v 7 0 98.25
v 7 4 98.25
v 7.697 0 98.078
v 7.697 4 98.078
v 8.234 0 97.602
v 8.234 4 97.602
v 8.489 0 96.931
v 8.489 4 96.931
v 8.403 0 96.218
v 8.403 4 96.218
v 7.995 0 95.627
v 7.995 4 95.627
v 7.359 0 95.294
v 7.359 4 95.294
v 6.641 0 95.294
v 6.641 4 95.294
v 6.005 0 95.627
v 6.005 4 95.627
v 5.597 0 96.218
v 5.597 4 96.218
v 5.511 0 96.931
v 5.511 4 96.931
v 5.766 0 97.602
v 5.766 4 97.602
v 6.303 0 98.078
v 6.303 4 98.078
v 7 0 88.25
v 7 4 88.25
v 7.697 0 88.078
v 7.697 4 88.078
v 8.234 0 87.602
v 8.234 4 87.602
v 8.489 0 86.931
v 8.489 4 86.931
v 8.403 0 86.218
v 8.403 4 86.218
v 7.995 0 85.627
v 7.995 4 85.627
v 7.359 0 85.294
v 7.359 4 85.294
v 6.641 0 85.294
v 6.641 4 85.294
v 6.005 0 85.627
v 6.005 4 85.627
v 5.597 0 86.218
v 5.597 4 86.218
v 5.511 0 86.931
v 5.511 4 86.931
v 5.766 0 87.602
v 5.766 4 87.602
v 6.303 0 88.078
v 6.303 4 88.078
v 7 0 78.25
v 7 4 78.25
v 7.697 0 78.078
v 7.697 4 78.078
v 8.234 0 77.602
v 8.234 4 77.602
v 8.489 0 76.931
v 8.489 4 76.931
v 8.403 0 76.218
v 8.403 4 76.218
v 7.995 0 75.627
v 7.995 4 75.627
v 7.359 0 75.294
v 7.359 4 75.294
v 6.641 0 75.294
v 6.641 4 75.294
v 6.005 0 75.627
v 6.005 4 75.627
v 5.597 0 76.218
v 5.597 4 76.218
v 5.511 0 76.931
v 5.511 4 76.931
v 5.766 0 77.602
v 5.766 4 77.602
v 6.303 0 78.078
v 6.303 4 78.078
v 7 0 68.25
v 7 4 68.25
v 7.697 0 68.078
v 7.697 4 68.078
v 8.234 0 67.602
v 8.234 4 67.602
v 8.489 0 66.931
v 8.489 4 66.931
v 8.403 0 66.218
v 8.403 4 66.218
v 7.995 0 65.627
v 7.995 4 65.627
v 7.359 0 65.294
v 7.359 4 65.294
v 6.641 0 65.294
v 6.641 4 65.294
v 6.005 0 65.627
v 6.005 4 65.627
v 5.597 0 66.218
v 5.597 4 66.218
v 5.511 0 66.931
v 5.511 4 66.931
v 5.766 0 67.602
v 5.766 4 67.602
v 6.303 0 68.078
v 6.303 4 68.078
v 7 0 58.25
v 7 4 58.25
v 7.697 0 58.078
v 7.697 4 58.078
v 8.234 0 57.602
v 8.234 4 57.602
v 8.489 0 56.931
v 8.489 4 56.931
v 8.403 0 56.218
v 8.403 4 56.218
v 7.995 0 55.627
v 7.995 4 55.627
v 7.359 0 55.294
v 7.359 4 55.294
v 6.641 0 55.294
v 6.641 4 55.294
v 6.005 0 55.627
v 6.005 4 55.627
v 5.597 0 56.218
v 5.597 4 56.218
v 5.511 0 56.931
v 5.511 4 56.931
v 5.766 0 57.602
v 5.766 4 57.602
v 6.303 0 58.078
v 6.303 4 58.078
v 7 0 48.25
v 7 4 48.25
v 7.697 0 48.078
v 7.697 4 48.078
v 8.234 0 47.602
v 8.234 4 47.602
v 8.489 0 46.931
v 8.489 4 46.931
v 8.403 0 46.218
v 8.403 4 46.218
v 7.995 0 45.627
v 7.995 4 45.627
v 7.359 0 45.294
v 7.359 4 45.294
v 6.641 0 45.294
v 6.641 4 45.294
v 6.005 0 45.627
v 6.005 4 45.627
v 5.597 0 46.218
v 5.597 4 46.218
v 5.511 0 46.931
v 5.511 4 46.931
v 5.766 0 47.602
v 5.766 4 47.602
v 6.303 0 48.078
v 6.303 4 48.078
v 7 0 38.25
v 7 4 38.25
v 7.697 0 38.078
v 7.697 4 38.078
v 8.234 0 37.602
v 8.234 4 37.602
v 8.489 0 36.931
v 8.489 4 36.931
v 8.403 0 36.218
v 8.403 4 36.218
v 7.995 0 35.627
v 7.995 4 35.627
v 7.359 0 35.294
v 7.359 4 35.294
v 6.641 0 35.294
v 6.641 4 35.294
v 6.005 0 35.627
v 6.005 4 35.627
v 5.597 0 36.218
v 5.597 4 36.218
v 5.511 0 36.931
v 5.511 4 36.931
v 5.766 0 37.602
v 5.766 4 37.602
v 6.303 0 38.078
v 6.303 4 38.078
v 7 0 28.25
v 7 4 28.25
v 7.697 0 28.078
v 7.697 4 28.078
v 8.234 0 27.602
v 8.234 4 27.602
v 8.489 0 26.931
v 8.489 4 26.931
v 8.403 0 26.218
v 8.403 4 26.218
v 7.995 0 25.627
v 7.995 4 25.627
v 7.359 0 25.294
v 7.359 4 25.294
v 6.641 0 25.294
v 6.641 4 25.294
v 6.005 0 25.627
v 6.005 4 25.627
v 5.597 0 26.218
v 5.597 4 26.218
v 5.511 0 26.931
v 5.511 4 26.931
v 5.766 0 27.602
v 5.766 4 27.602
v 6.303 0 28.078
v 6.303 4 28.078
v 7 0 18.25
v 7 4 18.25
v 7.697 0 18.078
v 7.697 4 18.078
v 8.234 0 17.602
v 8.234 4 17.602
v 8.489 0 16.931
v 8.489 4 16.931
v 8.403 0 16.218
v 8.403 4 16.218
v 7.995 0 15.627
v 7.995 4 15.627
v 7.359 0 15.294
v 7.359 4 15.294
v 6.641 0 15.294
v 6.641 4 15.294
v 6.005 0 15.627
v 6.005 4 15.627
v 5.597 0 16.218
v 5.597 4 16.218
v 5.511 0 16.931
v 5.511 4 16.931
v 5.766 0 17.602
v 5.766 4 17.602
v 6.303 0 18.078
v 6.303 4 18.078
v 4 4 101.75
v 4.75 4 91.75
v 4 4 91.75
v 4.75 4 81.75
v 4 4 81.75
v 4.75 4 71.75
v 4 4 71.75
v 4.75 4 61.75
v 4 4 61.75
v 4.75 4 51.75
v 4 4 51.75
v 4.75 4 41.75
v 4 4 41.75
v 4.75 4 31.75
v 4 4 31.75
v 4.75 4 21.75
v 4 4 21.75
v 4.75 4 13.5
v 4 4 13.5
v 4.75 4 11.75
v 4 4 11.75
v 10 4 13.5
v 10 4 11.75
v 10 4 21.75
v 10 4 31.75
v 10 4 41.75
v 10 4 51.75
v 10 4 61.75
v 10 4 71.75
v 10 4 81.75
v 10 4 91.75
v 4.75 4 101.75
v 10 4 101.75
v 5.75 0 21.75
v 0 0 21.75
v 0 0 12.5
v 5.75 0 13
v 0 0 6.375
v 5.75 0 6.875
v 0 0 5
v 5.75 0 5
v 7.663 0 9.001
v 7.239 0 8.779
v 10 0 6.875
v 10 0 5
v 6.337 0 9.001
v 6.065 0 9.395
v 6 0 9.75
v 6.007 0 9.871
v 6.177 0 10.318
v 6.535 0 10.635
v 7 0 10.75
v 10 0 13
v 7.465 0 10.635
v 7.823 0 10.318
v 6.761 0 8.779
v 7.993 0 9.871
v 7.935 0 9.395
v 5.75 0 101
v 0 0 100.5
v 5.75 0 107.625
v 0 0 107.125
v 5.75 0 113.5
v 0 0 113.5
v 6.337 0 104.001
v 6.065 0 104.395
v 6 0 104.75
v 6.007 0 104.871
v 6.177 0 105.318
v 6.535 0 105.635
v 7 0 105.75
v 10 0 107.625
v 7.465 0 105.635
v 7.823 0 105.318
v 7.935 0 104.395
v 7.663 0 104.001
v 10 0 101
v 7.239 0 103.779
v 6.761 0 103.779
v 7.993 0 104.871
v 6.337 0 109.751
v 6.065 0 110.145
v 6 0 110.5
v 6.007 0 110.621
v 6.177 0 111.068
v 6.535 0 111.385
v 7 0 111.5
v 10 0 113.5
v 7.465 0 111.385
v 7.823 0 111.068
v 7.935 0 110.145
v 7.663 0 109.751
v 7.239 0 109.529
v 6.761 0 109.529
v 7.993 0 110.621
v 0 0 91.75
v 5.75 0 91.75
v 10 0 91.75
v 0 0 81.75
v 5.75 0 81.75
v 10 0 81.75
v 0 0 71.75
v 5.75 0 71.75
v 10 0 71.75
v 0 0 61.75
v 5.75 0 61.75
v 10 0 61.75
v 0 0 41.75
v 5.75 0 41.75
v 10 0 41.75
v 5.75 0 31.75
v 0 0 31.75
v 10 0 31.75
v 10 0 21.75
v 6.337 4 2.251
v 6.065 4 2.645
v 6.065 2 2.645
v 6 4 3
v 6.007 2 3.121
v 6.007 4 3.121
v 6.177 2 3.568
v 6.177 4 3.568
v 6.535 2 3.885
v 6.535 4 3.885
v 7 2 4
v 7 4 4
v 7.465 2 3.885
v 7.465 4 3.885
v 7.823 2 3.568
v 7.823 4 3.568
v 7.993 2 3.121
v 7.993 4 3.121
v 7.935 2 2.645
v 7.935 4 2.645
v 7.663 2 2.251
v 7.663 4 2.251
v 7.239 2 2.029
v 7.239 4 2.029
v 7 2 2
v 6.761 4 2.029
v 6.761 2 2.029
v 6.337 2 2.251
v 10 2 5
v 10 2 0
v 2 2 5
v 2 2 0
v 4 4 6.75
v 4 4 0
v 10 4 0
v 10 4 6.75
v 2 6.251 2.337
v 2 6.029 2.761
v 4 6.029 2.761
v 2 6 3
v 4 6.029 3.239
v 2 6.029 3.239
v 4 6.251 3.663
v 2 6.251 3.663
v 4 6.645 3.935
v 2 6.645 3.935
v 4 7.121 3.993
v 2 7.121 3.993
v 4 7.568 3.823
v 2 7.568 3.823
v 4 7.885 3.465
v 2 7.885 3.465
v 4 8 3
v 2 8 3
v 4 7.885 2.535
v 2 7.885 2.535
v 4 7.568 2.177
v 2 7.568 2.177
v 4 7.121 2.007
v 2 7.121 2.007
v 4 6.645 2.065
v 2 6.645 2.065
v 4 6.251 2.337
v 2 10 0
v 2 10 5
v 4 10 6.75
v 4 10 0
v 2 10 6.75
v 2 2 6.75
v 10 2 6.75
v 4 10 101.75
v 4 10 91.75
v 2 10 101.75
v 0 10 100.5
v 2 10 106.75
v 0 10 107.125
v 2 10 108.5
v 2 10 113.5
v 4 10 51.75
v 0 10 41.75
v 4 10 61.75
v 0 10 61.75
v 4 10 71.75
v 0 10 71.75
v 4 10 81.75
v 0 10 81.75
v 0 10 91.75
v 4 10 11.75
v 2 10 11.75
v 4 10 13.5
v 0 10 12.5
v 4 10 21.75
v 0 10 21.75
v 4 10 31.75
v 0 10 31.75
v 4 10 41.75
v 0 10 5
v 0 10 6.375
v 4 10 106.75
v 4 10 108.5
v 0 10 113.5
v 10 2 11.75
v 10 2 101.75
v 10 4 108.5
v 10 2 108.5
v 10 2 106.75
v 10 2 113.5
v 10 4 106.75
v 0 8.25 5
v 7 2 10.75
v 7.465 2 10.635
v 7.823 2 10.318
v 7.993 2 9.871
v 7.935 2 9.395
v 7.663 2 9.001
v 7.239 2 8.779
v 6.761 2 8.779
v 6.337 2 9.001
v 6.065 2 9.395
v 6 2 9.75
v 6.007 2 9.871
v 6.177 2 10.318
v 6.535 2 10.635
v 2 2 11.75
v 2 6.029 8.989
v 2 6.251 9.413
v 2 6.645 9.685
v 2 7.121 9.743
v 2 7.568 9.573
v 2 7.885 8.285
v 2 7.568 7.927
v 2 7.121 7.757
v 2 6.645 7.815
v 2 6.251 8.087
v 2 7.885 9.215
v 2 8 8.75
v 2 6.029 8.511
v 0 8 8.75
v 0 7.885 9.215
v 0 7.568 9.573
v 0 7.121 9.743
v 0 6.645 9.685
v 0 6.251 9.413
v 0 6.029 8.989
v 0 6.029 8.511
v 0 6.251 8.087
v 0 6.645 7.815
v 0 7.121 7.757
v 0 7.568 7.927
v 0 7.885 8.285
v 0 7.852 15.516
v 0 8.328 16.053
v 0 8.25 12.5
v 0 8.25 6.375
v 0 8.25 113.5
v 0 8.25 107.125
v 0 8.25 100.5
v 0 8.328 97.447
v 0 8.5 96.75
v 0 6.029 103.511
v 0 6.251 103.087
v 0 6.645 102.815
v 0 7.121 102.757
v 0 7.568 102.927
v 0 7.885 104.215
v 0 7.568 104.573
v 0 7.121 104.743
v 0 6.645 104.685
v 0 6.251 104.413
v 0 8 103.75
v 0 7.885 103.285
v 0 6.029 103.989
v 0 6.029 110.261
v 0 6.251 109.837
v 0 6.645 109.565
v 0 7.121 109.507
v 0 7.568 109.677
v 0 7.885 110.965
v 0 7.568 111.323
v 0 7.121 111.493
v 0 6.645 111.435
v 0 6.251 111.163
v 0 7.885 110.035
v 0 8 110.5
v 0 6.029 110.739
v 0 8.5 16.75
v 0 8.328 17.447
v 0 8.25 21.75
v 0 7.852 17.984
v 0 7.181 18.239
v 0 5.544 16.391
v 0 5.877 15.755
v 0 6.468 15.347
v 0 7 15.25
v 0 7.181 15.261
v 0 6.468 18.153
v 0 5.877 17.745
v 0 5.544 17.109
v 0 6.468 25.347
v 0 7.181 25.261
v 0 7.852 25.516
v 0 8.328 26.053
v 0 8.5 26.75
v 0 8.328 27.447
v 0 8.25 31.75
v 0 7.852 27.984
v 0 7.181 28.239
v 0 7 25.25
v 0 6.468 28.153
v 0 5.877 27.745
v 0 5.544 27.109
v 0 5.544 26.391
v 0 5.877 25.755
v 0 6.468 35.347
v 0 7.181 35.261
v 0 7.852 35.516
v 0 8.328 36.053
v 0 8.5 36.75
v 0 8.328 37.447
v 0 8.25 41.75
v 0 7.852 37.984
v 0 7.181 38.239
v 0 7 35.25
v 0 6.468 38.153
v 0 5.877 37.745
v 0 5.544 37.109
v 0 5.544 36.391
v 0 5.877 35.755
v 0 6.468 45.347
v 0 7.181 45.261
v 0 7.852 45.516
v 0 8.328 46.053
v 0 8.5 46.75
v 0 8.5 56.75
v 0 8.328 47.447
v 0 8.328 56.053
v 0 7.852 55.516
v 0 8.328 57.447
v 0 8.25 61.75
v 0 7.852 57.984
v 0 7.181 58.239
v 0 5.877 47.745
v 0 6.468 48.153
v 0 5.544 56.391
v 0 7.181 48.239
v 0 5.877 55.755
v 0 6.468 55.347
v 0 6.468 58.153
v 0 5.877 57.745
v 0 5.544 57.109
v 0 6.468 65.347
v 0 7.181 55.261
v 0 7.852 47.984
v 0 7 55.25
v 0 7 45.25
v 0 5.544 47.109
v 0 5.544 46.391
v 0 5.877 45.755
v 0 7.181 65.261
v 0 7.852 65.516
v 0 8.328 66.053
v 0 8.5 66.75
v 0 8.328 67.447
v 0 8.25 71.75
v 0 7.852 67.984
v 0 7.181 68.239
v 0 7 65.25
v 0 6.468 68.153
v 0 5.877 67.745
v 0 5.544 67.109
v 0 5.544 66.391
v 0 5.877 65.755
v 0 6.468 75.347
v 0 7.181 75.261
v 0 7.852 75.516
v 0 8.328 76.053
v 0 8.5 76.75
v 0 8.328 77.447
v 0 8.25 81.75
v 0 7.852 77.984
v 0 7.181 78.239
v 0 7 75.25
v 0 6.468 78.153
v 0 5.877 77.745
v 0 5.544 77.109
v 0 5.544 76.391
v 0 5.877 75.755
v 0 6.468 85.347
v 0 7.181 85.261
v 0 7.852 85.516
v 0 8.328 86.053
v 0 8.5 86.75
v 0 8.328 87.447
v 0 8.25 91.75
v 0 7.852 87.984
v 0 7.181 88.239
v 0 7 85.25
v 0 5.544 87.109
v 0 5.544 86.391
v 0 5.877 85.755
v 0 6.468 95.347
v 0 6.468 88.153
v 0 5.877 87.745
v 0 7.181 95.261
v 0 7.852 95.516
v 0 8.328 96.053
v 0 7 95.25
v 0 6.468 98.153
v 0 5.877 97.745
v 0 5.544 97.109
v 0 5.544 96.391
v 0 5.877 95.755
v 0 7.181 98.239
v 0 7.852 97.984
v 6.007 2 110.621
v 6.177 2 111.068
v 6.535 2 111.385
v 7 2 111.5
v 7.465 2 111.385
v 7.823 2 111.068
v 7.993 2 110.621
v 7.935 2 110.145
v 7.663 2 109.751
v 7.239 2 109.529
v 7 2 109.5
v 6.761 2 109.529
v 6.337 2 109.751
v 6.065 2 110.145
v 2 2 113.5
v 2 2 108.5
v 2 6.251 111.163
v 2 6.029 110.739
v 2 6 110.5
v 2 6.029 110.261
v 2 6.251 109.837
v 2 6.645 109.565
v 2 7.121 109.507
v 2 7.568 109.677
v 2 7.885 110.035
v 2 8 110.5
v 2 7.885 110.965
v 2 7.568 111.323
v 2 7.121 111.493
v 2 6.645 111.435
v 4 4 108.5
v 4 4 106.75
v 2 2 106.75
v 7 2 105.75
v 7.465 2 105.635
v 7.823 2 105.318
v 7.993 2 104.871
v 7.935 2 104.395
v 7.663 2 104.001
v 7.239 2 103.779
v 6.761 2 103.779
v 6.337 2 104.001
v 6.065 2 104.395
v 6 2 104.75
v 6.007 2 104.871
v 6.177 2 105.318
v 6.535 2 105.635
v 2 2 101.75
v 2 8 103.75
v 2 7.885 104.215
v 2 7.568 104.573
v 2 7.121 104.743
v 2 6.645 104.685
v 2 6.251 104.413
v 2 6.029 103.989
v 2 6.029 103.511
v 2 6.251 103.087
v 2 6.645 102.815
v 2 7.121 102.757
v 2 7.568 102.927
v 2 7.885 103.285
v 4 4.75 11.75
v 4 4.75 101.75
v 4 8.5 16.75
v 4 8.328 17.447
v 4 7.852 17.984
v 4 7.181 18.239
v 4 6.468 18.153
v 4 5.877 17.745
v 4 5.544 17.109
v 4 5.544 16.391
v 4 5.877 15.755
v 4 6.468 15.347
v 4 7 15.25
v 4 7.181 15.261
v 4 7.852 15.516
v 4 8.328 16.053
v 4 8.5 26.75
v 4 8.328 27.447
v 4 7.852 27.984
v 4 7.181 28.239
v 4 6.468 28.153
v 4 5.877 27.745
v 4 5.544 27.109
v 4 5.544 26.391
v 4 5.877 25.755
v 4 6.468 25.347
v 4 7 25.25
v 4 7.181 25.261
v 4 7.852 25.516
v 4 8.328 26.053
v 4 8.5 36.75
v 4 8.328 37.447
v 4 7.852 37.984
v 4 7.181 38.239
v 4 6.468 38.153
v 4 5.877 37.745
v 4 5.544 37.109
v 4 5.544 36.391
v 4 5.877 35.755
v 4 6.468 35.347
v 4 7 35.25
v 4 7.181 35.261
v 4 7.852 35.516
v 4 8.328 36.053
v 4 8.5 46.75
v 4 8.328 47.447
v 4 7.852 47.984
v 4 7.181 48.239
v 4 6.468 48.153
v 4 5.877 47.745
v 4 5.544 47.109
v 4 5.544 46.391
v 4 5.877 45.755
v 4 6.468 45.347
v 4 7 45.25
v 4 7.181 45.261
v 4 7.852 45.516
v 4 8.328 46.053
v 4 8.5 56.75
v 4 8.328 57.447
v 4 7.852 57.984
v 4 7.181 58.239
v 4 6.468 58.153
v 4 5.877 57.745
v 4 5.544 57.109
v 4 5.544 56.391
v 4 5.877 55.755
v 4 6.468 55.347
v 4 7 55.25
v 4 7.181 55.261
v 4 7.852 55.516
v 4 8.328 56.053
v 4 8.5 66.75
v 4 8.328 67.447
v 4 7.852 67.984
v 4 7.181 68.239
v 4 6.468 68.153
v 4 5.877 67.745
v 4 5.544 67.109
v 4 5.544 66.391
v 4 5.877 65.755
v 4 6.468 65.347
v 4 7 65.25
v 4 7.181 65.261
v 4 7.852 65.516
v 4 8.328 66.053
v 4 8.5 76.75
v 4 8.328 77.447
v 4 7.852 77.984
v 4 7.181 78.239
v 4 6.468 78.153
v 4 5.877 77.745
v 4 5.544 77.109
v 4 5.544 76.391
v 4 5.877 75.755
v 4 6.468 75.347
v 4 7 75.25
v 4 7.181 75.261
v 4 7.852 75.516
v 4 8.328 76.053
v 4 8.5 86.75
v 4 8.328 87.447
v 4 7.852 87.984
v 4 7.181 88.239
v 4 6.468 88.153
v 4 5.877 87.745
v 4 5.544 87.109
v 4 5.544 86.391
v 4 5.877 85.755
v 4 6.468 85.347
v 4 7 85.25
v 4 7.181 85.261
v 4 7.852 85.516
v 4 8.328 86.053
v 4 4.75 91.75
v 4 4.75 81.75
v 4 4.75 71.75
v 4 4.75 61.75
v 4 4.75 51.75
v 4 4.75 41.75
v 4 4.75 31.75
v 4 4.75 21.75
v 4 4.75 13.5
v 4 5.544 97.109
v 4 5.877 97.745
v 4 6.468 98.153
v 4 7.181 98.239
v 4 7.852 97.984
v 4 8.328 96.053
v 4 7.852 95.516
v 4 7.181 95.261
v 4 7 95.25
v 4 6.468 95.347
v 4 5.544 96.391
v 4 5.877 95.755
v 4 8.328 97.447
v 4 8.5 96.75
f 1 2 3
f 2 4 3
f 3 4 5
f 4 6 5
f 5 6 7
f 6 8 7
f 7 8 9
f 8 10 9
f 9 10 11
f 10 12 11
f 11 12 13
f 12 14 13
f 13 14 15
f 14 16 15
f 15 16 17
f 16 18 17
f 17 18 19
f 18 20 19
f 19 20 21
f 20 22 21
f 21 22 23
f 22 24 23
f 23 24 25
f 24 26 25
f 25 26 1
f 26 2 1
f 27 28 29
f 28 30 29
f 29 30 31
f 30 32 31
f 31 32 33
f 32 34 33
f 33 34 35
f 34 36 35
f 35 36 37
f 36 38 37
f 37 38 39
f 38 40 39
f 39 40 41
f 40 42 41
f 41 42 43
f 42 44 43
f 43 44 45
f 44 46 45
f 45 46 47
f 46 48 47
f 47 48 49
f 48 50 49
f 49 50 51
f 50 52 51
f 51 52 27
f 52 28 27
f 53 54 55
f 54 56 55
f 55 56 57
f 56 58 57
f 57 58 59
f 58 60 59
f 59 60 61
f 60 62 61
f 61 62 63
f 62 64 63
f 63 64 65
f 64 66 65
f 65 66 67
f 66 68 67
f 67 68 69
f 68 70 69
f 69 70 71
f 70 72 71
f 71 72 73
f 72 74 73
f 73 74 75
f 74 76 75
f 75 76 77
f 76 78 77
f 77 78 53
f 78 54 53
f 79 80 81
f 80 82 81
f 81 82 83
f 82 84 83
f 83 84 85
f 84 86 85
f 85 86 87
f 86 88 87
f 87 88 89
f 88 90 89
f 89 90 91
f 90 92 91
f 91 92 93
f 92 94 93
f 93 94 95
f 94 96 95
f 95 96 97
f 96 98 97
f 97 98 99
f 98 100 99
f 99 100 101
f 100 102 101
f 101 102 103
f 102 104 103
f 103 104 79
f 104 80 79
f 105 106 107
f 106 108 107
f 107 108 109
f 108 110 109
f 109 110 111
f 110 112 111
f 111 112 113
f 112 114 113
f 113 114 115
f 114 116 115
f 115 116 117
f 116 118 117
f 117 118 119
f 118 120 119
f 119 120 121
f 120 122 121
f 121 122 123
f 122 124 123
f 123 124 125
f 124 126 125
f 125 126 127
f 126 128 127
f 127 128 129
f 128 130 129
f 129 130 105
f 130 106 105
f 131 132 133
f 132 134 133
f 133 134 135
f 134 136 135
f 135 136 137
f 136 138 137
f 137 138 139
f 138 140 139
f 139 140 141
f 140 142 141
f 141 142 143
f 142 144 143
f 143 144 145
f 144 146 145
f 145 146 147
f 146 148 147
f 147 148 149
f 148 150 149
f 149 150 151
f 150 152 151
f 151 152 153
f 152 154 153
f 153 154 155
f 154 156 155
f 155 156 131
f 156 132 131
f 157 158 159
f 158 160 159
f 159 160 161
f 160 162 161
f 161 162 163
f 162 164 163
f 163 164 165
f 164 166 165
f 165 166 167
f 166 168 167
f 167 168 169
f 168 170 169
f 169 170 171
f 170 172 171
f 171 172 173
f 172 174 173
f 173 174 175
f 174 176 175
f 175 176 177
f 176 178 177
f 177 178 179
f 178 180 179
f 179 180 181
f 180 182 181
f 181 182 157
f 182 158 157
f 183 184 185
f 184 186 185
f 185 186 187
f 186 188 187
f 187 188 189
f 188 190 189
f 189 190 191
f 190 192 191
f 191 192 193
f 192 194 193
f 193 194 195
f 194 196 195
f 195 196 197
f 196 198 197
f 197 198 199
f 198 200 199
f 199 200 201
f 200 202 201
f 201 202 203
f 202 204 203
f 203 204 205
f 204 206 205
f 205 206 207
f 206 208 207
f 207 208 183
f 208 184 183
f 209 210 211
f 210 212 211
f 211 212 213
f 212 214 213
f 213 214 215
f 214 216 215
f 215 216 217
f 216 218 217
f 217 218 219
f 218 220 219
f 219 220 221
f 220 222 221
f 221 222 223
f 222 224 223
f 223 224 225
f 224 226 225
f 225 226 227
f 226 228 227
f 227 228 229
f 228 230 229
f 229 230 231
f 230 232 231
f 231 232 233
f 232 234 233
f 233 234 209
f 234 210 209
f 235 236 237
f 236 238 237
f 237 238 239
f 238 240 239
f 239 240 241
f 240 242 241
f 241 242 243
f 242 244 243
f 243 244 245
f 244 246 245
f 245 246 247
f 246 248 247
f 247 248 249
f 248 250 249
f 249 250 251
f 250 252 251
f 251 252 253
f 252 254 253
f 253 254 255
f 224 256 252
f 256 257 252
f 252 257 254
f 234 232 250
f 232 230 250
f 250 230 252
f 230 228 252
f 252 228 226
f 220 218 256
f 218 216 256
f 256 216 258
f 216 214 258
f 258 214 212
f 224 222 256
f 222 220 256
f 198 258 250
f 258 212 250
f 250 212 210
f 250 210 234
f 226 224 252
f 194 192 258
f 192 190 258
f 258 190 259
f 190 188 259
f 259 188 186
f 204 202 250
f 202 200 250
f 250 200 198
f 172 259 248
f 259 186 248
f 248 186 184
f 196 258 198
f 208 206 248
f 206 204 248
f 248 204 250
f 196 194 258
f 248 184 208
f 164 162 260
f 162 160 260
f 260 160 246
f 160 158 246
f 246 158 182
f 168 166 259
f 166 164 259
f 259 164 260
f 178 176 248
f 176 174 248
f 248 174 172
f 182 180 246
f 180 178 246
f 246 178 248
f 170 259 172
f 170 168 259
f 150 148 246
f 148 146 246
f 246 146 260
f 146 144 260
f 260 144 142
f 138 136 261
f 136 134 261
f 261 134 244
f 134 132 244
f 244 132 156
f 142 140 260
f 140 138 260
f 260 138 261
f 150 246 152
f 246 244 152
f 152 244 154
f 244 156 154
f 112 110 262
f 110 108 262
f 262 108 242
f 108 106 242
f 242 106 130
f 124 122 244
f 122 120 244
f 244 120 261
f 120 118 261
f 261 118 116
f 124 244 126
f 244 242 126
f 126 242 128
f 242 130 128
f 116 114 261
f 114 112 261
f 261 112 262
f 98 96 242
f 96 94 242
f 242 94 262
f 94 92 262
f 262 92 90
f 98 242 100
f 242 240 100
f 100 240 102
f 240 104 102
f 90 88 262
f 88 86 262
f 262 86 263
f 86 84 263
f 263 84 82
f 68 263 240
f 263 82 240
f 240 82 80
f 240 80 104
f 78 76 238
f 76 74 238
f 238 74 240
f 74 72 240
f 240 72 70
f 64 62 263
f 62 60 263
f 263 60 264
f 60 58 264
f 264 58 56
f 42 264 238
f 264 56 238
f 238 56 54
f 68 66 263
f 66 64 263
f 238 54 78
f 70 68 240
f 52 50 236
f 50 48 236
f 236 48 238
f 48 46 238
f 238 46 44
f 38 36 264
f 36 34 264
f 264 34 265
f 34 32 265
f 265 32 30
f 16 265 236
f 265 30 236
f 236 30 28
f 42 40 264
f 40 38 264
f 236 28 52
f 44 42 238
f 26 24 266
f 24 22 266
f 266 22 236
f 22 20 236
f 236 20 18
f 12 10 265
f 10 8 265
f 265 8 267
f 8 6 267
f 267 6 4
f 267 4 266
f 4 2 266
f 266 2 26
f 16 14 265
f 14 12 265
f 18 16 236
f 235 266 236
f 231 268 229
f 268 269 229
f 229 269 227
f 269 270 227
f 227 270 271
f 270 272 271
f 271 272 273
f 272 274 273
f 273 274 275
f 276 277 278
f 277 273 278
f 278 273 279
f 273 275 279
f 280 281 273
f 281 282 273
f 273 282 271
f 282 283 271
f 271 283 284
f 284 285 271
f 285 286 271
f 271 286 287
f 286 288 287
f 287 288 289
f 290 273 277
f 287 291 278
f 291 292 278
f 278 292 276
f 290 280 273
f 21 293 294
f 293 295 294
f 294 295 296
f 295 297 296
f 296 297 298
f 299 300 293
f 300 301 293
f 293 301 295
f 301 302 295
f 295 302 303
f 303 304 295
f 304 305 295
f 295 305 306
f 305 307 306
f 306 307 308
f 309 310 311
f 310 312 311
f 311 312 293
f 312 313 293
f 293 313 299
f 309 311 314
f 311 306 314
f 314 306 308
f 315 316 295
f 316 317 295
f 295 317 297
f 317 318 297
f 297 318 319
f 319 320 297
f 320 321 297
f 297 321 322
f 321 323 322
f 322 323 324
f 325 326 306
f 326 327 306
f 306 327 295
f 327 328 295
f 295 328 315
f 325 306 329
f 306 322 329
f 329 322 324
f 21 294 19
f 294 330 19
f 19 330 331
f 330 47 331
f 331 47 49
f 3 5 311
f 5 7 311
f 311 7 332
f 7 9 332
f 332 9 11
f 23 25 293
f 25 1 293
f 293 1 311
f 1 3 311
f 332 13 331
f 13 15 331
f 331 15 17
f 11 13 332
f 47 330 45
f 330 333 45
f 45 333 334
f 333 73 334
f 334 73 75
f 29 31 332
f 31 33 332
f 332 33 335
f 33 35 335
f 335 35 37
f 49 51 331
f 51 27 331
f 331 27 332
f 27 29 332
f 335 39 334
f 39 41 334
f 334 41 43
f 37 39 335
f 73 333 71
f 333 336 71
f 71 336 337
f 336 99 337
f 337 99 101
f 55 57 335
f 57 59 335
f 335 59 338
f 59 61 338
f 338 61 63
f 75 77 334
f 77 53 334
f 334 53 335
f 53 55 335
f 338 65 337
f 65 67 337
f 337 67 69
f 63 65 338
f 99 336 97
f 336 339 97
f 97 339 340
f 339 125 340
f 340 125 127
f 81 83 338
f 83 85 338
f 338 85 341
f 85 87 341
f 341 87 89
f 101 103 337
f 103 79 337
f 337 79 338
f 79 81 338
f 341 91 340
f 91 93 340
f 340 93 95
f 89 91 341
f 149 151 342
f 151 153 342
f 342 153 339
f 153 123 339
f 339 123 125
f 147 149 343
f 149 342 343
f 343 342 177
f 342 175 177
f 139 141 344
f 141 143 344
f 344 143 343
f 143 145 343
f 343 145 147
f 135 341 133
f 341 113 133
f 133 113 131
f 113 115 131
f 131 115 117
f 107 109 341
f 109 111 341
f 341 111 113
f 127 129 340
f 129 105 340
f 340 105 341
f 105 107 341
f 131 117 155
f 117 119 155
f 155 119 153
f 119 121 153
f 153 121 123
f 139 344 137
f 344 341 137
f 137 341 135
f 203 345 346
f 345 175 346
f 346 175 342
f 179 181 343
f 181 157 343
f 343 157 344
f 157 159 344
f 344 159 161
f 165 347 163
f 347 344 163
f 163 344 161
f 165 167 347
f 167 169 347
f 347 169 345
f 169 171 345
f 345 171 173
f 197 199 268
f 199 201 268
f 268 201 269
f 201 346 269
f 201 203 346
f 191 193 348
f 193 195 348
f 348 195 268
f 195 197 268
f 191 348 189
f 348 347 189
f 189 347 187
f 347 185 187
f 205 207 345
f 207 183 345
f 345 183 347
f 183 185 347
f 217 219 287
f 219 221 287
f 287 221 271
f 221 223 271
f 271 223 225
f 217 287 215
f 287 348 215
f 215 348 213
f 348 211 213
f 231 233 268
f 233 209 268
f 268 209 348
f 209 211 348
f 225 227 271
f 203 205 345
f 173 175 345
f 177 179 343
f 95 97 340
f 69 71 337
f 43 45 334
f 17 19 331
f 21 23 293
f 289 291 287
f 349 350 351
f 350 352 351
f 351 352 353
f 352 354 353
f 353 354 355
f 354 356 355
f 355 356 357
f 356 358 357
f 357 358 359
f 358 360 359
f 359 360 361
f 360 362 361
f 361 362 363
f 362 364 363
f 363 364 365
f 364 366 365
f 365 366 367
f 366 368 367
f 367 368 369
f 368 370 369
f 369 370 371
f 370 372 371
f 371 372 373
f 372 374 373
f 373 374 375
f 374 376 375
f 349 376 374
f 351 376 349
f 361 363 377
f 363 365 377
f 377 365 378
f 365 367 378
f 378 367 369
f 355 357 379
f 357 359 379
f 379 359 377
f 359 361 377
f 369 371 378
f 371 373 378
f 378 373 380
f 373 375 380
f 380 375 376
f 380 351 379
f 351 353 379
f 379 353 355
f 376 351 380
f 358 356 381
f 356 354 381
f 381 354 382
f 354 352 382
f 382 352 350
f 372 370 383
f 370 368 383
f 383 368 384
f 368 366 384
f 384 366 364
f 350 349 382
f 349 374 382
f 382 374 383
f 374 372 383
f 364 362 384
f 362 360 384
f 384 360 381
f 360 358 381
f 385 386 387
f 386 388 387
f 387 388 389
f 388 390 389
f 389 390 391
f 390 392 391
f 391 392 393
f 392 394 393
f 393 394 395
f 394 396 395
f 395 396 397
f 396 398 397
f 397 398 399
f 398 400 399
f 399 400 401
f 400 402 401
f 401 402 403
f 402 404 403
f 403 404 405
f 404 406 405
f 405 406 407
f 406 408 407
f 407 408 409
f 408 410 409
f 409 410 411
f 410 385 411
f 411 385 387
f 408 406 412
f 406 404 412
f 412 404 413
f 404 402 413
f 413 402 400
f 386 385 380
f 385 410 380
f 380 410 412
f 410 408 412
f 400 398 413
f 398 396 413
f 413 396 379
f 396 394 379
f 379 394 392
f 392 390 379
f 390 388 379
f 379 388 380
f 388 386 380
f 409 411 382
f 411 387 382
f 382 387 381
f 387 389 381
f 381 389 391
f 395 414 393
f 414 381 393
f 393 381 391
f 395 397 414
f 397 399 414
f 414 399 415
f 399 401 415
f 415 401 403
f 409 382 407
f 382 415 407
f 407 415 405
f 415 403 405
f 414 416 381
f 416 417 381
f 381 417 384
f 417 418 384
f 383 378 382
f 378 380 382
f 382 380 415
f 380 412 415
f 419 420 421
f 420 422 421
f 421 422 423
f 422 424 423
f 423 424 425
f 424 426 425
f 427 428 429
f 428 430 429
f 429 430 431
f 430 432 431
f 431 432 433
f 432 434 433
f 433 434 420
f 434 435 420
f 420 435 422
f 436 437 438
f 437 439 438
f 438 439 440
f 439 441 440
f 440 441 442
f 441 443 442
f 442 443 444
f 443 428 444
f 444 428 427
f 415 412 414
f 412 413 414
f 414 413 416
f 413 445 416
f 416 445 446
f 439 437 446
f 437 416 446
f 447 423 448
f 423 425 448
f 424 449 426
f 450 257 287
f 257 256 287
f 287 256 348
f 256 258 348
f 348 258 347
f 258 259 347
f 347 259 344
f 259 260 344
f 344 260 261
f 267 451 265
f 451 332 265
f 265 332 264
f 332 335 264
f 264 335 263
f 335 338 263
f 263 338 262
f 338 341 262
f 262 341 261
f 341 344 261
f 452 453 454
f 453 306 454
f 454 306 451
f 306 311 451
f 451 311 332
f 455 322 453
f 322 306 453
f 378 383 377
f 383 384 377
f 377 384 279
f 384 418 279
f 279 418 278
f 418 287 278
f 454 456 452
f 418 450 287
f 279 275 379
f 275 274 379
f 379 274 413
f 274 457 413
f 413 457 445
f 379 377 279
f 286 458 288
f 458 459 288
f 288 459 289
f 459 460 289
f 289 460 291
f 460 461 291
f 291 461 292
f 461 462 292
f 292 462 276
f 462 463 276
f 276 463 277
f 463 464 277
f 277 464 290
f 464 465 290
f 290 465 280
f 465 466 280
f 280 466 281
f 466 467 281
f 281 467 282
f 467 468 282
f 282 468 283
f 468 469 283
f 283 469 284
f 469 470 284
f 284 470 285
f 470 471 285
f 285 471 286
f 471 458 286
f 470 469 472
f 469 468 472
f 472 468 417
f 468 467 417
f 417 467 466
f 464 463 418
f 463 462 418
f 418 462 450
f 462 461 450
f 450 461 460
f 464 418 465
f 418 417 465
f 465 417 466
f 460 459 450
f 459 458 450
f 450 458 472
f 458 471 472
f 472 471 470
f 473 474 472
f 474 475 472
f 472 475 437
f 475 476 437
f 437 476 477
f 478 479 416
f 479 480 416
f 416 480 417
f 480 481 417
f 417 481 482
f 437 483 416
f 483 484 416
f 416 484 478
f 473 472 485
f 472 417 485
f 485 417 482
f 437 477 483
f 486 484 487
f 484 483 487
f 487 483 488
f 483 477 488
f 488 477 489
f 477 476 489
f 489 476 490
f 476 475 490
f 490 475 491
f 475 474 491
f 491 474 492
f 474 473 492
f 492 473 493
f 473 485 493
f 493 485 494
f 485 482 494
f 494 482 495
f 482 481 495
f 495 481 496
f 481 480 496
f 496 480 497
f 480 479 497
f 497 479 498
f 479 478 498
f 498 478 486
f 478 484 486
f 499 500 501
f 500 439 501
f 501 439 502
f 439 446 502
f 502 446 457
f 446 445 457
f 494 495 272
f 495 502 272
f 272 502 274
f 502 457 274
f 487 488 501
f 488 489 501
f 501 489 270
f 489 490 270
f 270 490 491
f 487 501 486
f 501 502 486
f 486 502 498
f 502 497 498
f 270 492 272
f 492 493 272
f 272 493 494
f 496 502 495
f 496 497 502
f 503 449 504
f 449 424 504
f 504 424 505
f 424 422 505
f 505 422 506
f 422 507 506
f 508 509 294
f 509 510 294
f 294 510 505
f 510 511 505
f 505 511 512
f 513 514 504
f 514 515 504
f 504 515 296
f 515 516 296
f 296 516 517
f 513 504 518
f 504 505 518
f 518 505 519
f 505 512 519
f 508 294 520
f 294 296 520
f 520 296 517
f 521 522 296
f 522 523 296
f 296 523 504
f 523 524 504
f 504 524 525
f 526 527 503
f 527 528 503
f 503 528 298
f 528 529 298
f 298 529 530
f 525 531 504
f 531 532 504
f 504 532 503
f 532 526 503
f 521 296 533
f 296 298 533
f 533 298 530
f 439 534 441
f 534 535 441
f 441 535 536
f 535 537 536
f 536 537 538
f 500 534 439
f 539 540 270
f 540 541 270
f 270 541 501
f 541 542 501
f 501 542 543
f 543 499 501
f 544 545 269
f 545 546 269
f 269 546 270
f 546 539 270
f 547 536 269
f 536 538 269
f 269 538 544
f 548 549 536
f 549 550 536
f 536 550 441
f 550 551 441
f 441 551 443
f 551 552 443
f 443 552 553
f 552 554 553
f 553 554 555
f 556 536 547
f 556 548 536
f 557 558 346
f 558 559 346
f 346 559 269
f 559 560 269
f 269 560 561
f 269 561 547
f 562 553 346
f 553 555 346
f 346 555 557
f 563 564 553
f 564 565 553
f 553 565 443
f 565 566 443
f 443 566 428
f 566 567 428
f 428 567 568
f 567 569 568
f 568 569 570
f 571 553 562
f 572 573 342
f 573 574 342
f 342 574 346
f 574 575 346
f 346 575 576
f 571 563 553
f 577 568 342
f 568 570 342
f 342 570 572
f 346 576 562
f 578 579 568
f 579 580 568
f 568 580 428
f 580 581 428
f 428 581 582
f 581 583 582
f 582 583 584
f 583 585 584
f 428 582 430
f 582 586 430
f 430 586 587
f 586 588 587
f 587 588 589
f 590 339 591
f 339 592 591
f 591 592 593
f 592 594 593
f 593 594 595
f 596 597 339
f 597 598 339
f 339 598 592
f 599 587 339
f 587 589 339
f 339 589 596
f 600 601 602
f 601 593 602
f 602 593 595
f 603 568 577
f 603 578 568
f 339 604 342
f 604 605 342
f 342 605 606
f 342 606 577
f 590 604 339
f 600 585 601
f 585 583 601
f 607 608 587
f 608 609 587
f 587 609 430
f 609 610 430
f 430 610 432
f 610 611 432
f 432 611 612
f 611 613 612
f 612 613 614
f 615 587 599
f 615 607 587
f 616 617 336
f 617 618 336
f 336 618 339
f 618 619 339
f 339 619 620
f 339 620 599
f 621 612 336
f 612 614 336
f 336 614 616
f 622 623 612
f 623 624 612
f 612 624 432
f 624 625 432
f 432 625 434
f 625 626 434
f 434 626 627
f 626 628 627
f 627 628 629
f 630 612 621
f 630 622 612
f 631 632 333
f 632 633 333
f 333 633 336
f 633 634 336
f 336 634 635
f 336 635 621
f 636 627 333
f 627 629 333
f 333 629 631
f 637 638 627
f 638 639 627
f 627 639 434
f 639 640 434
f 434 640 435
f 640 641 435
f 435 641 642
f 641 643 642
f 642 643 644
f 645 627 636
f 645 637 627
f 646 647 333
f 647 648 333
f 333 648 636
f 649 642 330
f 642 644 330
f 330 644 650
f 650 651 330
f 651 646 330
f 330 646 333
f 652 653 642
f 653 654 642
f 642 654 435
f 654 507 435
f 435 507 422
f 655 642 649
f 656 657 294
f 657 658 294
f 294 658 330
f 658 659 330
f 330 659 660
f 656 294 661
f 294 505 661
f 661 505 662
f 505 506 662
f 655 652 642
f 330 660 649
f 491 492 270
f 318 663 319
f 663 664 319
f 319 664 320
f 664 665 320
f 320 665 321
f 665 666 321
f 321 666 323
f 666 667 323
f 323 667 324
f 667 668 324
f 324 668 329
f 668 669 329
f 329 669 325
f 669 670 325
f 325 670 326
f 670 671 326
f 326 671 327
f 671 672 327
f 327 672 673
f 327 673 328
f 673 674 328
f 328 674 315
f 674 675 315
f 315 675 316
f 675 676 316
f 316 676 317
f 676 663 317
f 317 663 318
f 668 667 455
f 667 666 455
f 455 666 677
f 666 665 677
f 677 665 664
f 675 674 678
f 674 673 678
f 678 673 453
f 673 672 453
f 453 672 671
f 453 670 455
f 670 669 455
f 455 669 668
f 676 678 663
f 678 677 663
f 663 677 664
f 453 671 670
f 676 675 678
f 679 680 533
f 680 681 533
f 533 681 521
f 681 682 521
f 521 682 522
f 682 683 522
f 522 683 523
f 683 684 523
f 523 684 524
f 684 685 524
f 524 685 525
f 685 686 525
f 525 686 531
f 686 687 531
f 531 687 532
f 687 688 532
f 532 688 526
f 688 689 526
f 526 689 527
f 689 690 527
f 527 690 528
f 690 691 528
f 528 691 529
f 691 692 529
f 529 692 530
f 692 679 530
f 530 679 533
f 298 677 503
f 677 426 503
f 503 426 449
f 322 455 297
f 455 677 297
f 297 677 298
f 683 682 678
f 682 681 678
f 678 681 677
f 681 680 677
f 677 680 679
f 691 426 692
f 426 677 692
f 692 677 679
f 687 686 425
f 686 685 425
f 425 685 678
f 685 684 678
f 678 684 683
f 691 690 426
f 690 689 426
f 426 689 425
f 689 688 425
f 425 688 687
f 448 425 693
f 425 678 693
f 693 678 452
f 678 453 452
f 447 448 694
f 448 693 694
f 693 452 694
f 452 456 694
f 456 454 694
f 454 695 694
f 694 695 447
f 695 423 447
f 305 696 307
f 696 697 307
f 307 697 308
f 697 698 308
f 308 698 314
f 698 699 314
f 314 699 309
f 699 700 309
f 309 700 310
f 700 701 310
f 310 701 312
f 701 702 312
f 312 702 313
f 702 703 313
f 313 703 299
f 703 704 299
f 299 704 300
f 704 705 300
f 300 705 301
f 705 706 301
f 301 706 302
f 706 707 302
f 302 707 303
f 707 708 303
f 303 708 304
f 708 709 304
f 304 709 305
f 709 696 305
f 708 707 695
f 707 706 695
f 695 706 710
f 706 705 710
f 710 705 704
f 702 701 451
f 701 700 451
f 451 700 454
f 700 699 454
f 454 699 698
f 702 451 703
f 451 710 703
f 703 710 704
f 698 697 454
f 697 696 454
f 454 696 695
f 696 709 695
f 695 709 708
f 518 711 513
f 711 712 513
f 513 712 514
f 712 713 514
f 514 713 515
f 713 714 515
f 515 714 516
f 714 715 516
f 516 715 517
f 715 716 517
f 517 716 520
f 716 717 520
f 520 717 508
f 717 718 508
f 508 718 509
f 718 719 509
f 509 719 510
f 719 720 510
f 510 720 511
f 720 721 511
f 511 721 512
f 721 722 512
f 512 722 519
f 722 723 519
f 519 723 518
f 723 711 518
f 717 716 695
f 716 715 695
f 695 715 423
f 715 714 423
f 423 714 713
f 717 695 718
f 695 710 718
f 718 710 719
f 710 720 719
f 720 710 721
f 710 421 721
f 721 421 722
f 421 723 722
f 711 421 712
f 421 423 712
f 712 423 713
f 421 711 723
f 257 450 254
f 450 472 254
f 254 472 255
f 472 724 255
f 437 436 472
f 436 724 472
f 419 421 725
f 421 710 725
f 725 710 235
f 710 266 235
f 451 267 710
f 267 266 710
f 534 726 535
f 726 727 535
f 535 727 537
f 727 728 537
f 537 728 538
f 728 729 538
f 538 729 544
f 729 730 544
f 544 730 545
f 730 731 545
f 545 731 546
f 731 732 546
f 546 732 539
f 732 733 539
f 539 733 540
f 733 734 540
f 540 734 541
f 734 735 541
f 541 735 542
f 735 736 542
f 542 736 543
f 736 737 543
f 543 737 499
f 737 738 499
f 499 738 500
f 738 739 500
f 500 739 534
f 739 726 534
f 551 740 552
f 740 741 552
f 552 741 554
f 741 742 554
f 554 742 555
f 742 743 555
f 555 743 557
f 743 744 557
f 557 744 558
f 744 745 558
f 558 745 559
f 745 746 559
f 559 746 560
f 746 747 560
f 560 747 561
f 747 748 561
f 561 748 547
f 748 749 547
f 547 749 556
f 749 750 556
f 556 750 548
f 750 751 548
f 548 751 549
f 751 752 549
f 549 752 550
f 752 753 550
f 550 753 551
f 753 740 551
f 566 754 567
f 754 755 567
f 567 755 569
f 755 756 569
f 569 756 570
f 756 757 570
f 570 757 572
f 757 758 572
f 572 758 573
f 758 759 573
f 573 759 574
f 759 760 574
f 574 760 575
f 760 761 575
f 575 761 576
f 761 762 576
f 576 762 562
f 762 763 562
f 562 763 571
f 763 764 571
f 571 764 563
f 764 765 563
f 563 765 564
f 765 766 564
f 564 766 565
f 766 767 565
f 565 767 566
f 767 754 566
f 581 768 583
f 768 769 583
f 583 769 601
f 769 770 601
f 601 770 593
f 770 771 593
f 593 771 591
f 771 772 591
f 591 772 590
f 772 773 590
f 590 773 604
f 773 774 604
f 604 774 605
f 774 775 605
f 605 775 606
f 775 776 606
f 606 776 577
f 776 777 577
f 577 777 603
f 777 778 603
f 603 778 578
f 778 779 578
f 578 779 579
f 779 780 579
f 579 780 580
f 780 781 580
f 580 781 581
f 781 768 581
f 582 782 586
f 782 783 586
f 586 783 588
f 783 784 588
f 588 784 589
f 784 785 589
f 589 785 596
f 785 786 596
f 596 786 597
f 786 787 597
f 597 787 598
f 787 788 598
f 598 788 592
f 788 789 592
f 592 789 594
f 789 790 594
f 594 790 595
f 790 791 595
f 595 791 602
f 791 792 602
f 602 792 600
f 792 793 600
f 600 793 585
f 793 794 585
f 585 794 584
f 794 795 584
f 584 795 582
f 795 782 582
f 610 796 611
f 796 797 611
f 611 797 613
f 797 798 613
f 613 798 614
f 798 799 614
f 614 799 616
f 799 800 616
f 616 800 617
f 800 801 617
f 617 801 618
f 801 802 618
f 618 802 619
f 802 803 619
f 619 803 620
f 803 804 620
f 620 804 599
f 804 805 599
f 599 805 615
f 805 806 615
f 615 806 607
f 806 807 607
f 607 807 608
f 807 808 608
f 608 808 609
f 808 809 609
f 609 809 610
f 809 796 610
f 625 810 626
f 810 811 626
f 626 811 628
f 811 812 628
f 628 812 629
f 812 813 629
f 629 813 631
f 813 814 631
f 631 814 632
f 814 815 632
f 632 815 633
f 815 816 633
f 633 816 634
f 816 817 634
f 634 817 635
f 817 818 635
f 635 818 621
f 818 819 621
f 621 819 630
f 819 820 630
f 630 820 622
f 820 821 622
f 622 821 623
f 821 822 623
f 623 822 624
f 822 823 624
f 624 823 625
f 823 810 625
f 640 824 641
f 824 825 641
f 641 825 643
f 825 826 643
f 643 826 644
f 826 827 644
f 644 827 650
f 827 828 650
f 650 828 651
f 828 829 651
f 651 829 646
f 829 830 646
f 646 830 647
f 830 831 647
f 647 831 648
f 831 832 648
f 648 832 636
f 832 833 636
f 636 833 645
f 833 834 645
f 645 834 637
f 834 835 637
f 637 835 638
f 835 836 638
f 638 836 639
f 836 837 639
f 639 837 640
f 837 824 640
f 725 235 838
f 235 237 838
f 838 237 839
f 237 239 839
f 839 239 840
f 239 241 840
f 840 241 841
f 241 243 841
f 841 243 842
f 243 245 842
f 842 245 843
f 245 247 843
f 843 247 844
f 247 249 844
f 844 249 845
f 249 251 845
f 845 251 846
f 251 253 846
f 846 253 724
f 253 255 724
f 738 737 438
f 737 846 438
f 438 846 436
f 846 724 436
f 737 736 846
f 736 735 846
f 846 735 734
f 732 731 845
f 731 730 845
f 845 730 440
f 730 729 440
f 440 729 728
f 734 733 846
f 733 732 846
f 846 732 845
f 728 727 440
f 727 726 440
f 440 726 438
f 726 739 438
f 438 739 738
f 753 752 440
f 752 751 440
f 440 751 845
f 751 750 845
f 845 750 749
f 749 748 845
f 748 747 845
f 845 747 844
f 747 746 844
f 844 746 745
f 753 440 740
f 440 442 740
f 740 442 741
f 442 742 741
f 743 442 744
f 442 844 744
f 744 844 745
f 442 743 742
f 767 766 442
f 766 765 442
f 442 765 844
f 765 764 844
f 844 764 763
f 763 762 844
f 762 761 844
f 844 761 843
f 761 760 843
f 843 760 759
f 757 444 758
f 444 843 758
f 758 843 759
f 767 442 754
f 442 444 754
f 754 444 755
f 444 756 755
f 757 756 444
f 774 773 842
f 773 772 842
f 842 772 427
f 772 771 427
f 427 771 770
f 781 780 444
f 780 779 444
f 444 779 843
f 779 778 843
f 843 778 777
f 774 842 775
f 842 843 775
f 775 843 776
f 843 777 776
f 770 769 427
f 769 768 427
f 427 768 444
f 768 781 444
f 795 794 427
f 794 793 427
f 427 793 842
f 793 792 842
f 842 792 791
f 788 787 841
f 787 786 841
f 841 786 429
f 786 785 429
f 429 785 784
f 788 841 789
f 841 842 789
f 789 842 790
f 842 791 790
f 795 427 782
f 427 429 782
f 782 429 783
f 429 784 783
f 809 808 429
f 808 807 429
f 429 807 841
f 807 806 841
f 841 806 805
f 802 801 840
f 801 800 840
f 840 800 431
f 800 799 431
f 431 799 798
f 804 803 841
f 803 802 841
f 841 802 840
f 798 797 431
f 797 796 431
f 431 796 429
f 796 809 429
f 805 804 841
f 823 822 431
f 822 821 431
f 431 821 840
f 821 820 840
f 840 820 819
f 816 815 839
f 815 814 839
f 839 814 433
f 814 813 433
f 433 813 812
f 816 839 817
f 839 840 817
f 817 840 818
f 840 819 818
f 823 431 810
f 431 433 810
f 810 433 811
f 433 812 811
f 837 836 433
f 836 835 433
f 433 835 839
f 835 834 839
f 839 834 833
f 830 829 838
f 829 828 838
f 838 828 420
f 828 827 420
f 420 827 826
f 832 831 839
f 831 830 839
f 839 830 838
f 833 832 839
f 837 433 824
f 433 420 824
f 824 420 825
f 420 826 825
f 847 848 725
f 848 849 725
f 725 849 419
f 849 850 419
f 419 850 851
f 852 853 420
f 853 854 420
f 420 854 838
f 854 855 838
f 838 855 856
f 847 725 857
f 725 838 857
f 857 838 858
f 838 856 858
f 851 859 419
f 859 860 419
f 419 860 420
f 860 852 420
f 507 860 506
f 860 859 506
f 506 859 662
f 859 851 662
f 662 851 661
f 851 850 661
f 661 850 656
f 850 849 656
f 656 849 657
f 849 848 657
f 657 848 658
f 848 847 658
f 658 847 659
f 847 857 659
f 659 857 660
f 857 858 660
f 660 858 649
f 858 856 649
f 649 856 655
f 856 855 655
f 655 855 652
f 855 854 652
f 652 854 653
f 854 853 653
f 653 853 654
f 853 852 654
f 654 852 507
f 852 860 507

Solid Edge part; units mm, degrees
sketch "Sketch1" plane through (0, 0, 0) normal (0, 0, 1) x (1, 0, 0)
  line L0 (0, 0) -> (0, 10)
  line L1 (0, 10) -> (4, 10)
  line L2 (4, 10) -> (4, 4)
  line L3 (4, 4) -> (10, 4)
  line L4 (10, 4) -> (10, 0)
  line L5 (10, 0) -> (0, 0)
  dimension "D1" = 4
  dimension "D2" = 4
  dimension "D3" = 10
  dimension "D4" = 10
extrude "Protrusion1" add sketch "Sketch1" along normal blind 113.5
sketch "Sketch2" plane through (5, 5, 113.5) normal (0, 0, 1) x (0, 1, 0)
  line L0 (5, 1) -> (5, 3)
  line L1 (5, 3) -> (-3, 3)
  line L2 (-3, 3) -> (-3, -5)
  line L3 (-3, -5) -> (-1, -5)
  line L4 (-1, -5) -> (-1, 1)
  line L5 (-1, 1) -> (5, 1)
extrude "ExtrudedCutout_4" cut sketch "Sketch2" against normal blind 5
sketch "Sketch3" plane through (5, 5, 0) normal (0, 0, -1) x (-1, 0, 0)
  line L0 (3, 5) -> (5, 5)
  line L1 (5, 5) -> (5, -5)
  line L2 (5, -5) -> (-5, -5)
  line L3 (-5, -5) -> (-5, -3)
  line L4 (-5, -3) -> (3, -3)
  line L5 (3, -3) -> (3, 5)
extrude "ExtrudedCutout_5" cut sketch "Sketch3" against normal blind 5
sketch "Sketch4" plane through (4, 6.5, 54.25) normal (1, 0, 0) x (0, 0, -1)
  line L0 (-52.5, 3.5) -> (-47.5, 3.5)
  line L1 (-47.5, 3.5) -> (-47.5, -2.5)
  line L2 (-47.5, -2.5) -> (-52.5, -2.5)
  line L3 (-52.5, -2.5) -> (-52.5, 3.5)
  dimension "D1" = 5
  dimension "D2" = 6.75
extrude "ExtrudedCutout_7" cut sketch "Sketch4" against normal blind 2
sketch "Sketch5" plane through (5.75, 4, 54.25) normal (0, 1, 0) x (0, 0, -1)
  line L0 (-52.5, 3.75) -> (-52.5, -4.25)
  line L1 (-52.5, -4.25) -> (-47.5, -4.25)
  line L2 (-47.5, -4.25) -> (-47.5, 3.75)
  line L3 (-47.5, 3.75) -> (-52.5, 3.75)
extrude "ExtrudedCutout_8" cut sketch "Sketch5" against normal blind 2
sketch "Sketch6" plane through (4, 6.5, 50.875) normal (1, 0, 0) x (0, 0, -1)
  line L0 (44.125, 3.5) -> (39.125, 3.5)
  line L1 (39.125, 3.5) -> (39.125, -2.5)
  line L2 (39.125, -2.5) -> (44.125, -2.5)
  line L3 (44.125, -2.5) -> (44.125, 3.5)
  dimension "D1" = 6.75
  dimension "D2" = 5
extrude "ExtrudedCutout_9" cut sketch "Sketch6" against normal blind 2
sketch "Sketch7" plane through (5.75, 4, 50.875) normal (0, 1, 0) x (0, 0, -1)
  line L0 (39.125, 3.75) -> (39.125, -4.25)
  line L1 (39.125, -4.25) -> (44.125, -4.25)
  line L2 (44.125, -4.25) -> (44.125, 3.75)
  line L3 (44.125, 3.75) -> (39.125, 3.75)
  dimension "D1" = 6.75
  dimension "D2" = 5
extrude "ExtrudedCutout_10" cut sketch "Sketch7" against normal blind 2
sketch "Sketch8" plane through (4, 7, 56.75) normal (1, 0, 0) x (0, 0, -1)
  circle A0 centre (-40, 0) radius 1.5
  circle A1 centre (-30, 0) radius 1.5
  circle A2 centre (-20, 0) radius 1.5
  circle A3 centre (-10, 0) radius 1.5
  circle A4 centre (0, 0) radius 1.5
  circle A5 centre (10, 0) radius 1.5
  circle A6 centre (20, 0) radius 1.5
  circle A7 centre (30, 0) radius 1.5
  circle A8 centre (40, 0) radius 1.5
extrude "ExtrudedCutout_11" cut sketch "Sketch8" against normal blind 4
sketch "Sketch9" plane through (7, 4, 56.75) normal (0, 1, 0) x (0, 0, 1)
  circle A0 centre (-40, 0) radius 1.5
  circle A1 centre (-30, 0) radius 1.5
  circle A2 centre (-20, 0) radius 1.5
  circle A3 centre (-10, 0) radius 1.5
  circle A4 centre (0, 0) radius 1.5
  circle A5 centre (10, 0) radius 1.5
  circle A6 centre (20, 0) radius 1.5
  circle A7 centre (30, 0) radius 1.5
  circle A8 centre (40, 0) radius 1.5
  dimension "D1" = 3
  dimension "D2" = 3
  dimension "D3" = 10
  dimension "D4" = 10
  dimension "D5" = 10
  dimension "D6" = 10
  dimension "D7" = 10
  dimension "D8" = 10
  dimension "D9" = 10
  dimension "D10" = 10
  dimension "D11" = 10
  dimension "D12" = 10
extrude "ExtrudedCutout_12" cut sketch "Sketch9" against normal blind 4
sketch "Sketch10" plane through (6, 4, 111) normal (0, 1, 0) x (-1, 0, 0)
  circle A0 centre (-1, -0.5) radius 1
  circle A1 centre (-1, -108) radius 1
  dimension "D1" = 1
extrude "ExtrudedCutout_13" cut sketch "Sketch10" against normal blind 4
sketch "Sketch11" plane through (4, 7, 3.375) normal (1, 0, 0) x (0, 1, 0)
  circle A0 centre (0, -0.375) radius 1
  circle A1 centre (0, 107.125) radius 1
  dimension "D1" = 2
  dimension "D2" = 3
  dimension "D3" = 3
  dimension "D4" = 2
  dimension "D5" = 3
  dimension "D6" = 3
extrude "ExtrudedCutout_14" cut sketch "Sketch11" against normal blind 4
sketch "Sketch12" plane through (6, 2, 9.25) normal (0, 1, 0) x (-1, 0, 0)
  circle A0 centre (-1, 0.5) radius 1
  circle A1 centre (-1, 95.5) radius 1
extrude "ExtrudedCutout_15" cut sketch "Sketch12" against normal blind 2
sketch "Sketch13" plane through (2, 6, 104.25) normal (1, 0, 0) x (0, 1, 0)
  circle A0 centre (1, -0.5) radius 1
  circle A1 centre (1, -95.5) radius 1
  dimension "D1" = 1
extrude "ExtrudedCutout_16" cut sketch "Sketch13" against normal blind 2
